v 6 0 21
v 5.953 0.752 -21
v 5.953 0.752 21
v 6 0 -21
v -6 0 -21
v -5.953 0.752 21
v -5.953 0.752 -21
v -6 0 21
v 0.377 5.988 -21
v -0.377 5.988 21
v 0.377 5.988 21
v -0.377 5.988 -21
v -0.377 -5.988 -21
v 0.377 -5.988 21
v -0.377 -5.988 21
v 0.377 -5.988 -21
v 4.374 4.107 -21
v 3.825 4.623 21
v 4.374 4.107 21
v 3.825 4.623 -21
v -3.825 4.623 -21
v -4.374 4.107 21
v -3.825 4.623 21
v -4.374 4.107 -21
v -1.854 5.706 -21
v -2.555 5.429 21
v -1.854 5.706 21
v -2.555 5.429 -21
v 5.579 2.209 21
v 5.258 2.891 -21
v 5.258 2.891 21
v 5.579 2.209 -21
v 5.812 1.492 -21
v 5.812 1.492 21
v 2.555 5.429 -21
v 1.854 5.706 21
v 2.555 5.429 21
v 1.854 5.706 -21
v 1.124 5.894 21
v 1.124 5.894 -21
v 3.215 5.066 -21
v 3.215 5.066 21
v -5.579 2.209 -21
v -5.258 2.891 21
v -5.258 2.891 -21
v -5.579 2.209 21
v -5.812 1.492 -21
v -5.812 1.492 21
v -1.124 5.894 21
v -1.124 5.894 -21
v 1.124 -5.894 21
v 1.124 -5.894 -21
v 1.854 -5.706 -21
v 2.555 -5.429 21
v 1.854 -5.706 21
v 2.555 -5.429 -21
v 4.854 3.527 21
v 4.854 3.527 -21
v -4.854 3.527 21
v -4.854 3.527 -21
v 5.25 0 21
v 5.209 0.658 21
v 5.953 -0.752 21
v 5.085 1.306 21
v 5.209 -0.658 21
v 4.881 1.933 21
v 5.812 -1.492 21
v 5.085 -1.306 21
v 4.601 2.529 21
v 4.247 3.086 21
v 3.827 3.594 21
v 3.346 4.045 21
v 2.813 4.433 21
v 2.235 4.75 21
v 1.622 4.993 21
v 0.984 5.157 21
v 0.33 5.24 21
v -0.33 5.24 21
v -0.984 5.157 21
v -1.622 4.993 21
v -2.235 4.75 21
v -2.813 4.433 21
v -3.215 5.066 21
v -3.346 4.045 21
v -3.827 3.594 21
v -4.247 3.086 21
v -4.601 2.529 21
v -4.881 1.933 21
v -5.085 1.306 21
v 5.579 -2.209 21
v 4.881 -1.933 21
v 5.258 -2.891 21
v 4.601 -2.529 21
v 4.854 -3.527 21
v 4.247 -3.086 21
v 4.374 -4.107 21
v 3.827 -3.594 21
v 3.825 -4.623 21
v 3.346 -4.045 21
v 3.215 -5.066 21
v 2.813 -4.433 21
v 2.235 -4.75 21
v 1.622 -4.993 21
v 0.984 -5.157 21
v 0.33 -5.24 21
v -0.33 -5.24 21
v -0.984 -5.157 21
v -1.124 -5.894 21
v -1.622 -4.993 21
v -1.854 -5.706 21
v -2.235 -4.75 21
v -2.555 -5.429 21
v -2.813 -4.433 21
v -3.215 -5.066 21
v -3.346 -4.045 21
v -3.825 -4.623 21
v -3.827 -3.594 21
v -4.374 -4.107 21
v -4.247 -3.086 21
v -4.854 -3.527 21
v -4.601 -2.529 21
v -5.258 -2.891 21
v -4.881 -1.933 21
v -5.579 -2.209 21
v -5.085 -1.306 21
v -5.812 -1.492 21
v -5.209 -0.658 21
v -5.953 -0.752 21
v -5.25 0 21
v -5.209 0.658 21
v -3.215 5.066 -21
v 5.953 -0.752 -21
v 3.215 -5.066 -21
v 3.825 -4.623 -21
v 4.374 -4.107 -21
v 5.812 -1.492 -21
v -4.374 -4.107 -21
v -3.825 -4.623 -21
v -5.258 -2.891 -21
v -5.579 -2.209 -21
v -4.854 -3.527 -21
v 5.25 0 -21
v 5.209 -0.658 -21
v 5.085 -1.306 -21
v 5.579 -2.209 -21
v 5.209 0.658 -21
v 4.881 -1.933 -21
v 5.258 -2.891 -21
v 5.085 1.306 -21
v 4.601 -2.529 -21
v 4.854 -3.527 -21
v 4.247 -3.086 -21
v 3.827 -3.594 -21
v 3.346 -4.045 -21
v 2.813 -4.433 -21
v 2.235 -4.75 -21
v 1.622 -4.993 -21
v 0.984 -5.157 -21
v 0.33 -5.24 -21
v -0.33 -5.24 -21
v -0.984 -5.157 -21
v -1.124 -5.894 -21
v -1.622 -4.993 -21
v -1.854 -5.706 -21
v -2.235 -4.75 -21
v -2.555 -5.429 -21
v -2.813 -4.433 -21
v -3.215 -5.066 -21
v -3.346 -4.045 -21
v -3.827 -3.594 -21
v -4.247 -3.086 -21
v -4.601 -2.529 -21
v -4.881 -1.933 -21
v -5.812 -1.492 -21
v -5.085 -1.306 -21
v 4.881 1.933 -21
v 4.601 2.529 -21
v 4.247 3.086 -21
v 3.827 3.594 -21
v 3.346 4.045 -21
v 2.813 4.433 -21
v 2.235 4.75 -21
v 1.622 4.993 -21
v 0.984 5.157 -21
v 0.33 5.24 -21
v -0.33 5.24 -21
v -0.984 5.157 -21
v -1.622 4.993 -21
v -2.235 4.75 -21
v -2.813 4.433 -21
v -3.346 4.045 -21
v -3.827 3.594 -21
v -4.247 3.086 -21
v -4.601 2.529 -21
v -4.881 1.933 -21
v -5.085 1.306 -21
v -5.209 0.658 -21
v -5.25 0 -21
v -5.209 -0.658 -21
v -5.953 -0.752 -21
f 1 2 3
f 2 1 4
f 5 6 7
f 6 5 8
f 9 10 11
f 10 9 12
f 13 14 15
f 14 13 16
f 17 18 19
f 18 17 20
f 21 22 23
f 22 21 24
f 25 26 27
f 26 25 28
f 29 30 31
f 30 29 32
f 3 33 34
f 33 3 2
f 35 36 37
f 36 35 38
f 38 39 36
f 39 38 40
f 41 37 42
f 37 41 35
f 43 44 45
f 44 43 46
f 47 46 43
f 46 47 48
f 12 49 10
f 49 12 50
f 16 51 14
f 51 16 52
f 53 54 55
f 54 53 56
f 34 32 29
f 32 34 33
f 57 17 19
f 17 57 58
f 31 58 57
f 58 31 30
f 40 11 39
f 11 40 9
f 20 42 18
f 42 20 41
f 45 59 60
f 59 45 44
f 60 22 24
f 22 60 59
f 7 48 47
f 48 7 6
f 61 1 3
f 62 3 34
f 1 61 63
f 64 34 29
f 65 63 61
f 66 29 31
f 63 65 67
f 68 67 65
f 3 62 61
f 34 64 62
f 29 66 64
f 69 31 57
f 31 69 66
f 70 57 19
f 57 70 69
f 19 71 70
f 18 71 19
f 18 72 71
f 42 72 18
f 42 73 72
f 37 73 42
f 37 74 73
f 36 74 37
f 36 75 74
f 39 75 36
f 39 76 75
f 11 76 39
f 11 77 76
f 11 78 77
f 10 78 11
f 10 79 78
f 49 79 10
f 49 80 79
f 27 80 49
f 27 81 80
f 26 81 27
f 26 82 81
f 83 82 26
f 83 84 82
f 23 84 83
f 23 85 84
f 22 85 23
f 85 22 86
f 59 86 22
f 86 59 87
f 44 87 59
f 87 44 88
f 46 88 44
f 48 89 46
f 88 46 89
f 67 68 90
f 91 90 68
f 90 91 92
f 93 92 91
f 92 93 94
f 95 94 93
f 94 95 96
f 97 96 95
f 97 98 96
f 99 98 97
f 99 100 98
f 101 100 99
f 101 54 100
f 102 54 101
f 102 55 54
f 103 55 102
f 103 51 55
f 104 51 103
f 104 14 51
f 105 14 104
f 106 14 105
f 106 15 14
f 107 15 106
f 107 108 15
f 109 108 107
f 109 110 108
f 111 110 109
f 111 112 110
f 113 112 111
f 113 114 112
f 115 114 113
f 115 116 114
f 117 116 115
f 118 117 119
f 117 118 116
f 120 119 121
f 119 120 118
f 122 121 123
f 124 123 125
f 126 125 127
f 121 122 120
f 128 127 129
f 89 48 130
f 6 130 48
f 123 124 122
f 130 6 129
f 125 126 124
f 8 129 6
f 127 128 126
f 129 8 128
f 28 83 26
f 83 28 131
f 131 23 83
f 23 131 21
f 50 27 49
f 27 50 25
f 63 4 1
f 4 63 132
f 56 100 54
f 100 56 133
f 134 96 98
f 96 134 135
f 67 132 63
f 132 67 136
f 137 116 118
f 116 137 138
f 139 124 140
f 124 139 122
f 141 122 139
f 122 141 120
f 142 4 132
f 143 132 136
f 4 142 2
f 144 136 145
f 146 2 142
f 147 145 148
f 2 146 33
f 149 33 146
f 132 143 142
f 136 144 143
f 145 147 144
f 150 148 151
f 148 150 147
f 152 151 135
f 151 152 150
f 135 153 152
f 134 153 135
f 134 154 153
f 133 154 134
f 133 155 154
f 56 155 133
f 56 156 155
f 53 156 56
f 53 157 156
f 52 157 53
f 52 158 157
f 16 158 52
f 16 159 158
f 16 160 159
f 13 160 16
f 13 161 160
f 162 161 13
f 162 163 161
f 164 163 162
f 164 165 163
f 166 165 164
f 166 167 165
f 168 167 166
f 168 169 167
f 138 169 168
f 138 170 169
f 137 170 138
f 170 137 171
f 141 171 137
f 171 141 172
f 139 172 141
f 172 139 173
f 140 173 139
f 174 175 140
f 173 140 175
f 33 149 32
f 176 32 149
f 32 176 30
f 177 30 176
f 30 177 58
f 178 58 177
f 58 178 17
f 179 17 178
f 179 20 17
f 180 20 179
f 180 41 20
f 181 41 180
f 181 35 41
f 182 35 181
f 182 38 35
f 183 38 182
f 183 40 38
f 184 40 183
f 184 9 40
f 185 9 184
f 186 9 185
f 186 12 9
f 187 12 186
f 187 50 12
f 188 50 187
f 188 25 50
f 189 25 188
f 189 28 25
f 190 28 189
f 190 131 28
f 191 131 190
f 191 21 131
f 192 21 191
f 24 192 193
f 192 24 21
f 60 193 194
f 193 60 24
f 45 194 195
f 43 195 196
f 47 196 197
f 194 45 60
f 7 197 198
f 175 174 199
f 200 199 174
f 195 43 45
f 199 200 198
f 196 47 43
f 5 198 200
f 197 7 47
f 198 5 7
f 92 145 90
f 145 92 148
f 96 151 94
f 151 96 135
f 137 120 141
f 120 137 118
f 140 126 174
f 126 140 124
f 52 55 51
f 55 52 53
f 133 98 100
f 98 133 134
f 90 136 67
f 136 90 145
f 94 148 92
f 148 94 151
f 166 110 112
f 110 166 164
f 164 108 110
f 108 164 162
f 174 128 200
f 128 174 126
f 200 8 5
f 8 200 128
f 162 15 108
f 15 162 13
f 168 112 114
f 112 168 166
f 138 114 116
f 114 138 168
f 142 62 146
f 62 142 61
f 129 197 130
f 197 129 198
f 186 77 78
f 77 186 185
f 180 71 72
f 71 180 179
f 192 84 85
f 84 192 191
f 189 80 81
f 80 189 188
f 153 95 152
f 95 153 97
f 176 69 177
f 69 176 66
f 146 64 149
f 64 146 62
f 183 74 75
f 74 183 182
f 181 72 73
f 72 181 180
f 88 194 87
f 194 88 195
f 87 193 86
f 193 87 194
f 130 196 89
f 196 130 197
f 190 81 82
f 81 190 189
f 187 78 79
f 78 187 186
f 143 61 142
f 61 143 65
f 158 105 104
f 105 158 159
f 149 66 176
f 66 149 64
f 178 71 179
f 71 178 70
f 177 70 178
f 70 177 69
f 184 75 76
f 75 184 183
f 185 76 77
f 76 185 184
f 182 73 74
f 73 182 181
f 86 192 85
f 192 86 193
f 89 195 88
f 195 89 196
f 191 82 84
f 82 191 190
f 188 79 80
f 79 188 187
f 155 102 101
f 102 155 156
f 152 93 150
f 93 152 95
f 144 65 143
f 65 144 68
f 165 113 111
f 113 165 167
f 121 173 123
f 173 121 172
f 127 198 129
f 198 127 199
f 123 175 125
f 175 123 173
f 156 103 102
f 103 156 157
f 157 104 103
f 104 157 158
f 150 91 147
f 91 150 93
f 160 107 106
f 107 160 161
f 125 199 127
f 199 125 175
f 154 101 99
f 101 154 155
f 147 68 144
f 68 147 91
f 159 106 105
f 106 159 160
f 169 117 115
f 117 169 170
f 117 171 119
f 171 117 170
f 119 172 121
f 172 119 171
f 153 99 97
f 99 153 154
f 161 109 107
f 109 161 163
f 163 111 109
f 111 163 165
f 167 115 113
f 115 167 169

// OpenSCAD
$fn = 50;


difference() {
	union() {
		translate(v = [0, 0, -21.0000000000]) {
			cylinder(h = 42, r = 6.0000000000);
		}
	}
	union() {
		translate(v = [0, 0, -100.0000000000]) {
			cylinder(h = 200, r = 5.2500000000);
		}
	}
}
